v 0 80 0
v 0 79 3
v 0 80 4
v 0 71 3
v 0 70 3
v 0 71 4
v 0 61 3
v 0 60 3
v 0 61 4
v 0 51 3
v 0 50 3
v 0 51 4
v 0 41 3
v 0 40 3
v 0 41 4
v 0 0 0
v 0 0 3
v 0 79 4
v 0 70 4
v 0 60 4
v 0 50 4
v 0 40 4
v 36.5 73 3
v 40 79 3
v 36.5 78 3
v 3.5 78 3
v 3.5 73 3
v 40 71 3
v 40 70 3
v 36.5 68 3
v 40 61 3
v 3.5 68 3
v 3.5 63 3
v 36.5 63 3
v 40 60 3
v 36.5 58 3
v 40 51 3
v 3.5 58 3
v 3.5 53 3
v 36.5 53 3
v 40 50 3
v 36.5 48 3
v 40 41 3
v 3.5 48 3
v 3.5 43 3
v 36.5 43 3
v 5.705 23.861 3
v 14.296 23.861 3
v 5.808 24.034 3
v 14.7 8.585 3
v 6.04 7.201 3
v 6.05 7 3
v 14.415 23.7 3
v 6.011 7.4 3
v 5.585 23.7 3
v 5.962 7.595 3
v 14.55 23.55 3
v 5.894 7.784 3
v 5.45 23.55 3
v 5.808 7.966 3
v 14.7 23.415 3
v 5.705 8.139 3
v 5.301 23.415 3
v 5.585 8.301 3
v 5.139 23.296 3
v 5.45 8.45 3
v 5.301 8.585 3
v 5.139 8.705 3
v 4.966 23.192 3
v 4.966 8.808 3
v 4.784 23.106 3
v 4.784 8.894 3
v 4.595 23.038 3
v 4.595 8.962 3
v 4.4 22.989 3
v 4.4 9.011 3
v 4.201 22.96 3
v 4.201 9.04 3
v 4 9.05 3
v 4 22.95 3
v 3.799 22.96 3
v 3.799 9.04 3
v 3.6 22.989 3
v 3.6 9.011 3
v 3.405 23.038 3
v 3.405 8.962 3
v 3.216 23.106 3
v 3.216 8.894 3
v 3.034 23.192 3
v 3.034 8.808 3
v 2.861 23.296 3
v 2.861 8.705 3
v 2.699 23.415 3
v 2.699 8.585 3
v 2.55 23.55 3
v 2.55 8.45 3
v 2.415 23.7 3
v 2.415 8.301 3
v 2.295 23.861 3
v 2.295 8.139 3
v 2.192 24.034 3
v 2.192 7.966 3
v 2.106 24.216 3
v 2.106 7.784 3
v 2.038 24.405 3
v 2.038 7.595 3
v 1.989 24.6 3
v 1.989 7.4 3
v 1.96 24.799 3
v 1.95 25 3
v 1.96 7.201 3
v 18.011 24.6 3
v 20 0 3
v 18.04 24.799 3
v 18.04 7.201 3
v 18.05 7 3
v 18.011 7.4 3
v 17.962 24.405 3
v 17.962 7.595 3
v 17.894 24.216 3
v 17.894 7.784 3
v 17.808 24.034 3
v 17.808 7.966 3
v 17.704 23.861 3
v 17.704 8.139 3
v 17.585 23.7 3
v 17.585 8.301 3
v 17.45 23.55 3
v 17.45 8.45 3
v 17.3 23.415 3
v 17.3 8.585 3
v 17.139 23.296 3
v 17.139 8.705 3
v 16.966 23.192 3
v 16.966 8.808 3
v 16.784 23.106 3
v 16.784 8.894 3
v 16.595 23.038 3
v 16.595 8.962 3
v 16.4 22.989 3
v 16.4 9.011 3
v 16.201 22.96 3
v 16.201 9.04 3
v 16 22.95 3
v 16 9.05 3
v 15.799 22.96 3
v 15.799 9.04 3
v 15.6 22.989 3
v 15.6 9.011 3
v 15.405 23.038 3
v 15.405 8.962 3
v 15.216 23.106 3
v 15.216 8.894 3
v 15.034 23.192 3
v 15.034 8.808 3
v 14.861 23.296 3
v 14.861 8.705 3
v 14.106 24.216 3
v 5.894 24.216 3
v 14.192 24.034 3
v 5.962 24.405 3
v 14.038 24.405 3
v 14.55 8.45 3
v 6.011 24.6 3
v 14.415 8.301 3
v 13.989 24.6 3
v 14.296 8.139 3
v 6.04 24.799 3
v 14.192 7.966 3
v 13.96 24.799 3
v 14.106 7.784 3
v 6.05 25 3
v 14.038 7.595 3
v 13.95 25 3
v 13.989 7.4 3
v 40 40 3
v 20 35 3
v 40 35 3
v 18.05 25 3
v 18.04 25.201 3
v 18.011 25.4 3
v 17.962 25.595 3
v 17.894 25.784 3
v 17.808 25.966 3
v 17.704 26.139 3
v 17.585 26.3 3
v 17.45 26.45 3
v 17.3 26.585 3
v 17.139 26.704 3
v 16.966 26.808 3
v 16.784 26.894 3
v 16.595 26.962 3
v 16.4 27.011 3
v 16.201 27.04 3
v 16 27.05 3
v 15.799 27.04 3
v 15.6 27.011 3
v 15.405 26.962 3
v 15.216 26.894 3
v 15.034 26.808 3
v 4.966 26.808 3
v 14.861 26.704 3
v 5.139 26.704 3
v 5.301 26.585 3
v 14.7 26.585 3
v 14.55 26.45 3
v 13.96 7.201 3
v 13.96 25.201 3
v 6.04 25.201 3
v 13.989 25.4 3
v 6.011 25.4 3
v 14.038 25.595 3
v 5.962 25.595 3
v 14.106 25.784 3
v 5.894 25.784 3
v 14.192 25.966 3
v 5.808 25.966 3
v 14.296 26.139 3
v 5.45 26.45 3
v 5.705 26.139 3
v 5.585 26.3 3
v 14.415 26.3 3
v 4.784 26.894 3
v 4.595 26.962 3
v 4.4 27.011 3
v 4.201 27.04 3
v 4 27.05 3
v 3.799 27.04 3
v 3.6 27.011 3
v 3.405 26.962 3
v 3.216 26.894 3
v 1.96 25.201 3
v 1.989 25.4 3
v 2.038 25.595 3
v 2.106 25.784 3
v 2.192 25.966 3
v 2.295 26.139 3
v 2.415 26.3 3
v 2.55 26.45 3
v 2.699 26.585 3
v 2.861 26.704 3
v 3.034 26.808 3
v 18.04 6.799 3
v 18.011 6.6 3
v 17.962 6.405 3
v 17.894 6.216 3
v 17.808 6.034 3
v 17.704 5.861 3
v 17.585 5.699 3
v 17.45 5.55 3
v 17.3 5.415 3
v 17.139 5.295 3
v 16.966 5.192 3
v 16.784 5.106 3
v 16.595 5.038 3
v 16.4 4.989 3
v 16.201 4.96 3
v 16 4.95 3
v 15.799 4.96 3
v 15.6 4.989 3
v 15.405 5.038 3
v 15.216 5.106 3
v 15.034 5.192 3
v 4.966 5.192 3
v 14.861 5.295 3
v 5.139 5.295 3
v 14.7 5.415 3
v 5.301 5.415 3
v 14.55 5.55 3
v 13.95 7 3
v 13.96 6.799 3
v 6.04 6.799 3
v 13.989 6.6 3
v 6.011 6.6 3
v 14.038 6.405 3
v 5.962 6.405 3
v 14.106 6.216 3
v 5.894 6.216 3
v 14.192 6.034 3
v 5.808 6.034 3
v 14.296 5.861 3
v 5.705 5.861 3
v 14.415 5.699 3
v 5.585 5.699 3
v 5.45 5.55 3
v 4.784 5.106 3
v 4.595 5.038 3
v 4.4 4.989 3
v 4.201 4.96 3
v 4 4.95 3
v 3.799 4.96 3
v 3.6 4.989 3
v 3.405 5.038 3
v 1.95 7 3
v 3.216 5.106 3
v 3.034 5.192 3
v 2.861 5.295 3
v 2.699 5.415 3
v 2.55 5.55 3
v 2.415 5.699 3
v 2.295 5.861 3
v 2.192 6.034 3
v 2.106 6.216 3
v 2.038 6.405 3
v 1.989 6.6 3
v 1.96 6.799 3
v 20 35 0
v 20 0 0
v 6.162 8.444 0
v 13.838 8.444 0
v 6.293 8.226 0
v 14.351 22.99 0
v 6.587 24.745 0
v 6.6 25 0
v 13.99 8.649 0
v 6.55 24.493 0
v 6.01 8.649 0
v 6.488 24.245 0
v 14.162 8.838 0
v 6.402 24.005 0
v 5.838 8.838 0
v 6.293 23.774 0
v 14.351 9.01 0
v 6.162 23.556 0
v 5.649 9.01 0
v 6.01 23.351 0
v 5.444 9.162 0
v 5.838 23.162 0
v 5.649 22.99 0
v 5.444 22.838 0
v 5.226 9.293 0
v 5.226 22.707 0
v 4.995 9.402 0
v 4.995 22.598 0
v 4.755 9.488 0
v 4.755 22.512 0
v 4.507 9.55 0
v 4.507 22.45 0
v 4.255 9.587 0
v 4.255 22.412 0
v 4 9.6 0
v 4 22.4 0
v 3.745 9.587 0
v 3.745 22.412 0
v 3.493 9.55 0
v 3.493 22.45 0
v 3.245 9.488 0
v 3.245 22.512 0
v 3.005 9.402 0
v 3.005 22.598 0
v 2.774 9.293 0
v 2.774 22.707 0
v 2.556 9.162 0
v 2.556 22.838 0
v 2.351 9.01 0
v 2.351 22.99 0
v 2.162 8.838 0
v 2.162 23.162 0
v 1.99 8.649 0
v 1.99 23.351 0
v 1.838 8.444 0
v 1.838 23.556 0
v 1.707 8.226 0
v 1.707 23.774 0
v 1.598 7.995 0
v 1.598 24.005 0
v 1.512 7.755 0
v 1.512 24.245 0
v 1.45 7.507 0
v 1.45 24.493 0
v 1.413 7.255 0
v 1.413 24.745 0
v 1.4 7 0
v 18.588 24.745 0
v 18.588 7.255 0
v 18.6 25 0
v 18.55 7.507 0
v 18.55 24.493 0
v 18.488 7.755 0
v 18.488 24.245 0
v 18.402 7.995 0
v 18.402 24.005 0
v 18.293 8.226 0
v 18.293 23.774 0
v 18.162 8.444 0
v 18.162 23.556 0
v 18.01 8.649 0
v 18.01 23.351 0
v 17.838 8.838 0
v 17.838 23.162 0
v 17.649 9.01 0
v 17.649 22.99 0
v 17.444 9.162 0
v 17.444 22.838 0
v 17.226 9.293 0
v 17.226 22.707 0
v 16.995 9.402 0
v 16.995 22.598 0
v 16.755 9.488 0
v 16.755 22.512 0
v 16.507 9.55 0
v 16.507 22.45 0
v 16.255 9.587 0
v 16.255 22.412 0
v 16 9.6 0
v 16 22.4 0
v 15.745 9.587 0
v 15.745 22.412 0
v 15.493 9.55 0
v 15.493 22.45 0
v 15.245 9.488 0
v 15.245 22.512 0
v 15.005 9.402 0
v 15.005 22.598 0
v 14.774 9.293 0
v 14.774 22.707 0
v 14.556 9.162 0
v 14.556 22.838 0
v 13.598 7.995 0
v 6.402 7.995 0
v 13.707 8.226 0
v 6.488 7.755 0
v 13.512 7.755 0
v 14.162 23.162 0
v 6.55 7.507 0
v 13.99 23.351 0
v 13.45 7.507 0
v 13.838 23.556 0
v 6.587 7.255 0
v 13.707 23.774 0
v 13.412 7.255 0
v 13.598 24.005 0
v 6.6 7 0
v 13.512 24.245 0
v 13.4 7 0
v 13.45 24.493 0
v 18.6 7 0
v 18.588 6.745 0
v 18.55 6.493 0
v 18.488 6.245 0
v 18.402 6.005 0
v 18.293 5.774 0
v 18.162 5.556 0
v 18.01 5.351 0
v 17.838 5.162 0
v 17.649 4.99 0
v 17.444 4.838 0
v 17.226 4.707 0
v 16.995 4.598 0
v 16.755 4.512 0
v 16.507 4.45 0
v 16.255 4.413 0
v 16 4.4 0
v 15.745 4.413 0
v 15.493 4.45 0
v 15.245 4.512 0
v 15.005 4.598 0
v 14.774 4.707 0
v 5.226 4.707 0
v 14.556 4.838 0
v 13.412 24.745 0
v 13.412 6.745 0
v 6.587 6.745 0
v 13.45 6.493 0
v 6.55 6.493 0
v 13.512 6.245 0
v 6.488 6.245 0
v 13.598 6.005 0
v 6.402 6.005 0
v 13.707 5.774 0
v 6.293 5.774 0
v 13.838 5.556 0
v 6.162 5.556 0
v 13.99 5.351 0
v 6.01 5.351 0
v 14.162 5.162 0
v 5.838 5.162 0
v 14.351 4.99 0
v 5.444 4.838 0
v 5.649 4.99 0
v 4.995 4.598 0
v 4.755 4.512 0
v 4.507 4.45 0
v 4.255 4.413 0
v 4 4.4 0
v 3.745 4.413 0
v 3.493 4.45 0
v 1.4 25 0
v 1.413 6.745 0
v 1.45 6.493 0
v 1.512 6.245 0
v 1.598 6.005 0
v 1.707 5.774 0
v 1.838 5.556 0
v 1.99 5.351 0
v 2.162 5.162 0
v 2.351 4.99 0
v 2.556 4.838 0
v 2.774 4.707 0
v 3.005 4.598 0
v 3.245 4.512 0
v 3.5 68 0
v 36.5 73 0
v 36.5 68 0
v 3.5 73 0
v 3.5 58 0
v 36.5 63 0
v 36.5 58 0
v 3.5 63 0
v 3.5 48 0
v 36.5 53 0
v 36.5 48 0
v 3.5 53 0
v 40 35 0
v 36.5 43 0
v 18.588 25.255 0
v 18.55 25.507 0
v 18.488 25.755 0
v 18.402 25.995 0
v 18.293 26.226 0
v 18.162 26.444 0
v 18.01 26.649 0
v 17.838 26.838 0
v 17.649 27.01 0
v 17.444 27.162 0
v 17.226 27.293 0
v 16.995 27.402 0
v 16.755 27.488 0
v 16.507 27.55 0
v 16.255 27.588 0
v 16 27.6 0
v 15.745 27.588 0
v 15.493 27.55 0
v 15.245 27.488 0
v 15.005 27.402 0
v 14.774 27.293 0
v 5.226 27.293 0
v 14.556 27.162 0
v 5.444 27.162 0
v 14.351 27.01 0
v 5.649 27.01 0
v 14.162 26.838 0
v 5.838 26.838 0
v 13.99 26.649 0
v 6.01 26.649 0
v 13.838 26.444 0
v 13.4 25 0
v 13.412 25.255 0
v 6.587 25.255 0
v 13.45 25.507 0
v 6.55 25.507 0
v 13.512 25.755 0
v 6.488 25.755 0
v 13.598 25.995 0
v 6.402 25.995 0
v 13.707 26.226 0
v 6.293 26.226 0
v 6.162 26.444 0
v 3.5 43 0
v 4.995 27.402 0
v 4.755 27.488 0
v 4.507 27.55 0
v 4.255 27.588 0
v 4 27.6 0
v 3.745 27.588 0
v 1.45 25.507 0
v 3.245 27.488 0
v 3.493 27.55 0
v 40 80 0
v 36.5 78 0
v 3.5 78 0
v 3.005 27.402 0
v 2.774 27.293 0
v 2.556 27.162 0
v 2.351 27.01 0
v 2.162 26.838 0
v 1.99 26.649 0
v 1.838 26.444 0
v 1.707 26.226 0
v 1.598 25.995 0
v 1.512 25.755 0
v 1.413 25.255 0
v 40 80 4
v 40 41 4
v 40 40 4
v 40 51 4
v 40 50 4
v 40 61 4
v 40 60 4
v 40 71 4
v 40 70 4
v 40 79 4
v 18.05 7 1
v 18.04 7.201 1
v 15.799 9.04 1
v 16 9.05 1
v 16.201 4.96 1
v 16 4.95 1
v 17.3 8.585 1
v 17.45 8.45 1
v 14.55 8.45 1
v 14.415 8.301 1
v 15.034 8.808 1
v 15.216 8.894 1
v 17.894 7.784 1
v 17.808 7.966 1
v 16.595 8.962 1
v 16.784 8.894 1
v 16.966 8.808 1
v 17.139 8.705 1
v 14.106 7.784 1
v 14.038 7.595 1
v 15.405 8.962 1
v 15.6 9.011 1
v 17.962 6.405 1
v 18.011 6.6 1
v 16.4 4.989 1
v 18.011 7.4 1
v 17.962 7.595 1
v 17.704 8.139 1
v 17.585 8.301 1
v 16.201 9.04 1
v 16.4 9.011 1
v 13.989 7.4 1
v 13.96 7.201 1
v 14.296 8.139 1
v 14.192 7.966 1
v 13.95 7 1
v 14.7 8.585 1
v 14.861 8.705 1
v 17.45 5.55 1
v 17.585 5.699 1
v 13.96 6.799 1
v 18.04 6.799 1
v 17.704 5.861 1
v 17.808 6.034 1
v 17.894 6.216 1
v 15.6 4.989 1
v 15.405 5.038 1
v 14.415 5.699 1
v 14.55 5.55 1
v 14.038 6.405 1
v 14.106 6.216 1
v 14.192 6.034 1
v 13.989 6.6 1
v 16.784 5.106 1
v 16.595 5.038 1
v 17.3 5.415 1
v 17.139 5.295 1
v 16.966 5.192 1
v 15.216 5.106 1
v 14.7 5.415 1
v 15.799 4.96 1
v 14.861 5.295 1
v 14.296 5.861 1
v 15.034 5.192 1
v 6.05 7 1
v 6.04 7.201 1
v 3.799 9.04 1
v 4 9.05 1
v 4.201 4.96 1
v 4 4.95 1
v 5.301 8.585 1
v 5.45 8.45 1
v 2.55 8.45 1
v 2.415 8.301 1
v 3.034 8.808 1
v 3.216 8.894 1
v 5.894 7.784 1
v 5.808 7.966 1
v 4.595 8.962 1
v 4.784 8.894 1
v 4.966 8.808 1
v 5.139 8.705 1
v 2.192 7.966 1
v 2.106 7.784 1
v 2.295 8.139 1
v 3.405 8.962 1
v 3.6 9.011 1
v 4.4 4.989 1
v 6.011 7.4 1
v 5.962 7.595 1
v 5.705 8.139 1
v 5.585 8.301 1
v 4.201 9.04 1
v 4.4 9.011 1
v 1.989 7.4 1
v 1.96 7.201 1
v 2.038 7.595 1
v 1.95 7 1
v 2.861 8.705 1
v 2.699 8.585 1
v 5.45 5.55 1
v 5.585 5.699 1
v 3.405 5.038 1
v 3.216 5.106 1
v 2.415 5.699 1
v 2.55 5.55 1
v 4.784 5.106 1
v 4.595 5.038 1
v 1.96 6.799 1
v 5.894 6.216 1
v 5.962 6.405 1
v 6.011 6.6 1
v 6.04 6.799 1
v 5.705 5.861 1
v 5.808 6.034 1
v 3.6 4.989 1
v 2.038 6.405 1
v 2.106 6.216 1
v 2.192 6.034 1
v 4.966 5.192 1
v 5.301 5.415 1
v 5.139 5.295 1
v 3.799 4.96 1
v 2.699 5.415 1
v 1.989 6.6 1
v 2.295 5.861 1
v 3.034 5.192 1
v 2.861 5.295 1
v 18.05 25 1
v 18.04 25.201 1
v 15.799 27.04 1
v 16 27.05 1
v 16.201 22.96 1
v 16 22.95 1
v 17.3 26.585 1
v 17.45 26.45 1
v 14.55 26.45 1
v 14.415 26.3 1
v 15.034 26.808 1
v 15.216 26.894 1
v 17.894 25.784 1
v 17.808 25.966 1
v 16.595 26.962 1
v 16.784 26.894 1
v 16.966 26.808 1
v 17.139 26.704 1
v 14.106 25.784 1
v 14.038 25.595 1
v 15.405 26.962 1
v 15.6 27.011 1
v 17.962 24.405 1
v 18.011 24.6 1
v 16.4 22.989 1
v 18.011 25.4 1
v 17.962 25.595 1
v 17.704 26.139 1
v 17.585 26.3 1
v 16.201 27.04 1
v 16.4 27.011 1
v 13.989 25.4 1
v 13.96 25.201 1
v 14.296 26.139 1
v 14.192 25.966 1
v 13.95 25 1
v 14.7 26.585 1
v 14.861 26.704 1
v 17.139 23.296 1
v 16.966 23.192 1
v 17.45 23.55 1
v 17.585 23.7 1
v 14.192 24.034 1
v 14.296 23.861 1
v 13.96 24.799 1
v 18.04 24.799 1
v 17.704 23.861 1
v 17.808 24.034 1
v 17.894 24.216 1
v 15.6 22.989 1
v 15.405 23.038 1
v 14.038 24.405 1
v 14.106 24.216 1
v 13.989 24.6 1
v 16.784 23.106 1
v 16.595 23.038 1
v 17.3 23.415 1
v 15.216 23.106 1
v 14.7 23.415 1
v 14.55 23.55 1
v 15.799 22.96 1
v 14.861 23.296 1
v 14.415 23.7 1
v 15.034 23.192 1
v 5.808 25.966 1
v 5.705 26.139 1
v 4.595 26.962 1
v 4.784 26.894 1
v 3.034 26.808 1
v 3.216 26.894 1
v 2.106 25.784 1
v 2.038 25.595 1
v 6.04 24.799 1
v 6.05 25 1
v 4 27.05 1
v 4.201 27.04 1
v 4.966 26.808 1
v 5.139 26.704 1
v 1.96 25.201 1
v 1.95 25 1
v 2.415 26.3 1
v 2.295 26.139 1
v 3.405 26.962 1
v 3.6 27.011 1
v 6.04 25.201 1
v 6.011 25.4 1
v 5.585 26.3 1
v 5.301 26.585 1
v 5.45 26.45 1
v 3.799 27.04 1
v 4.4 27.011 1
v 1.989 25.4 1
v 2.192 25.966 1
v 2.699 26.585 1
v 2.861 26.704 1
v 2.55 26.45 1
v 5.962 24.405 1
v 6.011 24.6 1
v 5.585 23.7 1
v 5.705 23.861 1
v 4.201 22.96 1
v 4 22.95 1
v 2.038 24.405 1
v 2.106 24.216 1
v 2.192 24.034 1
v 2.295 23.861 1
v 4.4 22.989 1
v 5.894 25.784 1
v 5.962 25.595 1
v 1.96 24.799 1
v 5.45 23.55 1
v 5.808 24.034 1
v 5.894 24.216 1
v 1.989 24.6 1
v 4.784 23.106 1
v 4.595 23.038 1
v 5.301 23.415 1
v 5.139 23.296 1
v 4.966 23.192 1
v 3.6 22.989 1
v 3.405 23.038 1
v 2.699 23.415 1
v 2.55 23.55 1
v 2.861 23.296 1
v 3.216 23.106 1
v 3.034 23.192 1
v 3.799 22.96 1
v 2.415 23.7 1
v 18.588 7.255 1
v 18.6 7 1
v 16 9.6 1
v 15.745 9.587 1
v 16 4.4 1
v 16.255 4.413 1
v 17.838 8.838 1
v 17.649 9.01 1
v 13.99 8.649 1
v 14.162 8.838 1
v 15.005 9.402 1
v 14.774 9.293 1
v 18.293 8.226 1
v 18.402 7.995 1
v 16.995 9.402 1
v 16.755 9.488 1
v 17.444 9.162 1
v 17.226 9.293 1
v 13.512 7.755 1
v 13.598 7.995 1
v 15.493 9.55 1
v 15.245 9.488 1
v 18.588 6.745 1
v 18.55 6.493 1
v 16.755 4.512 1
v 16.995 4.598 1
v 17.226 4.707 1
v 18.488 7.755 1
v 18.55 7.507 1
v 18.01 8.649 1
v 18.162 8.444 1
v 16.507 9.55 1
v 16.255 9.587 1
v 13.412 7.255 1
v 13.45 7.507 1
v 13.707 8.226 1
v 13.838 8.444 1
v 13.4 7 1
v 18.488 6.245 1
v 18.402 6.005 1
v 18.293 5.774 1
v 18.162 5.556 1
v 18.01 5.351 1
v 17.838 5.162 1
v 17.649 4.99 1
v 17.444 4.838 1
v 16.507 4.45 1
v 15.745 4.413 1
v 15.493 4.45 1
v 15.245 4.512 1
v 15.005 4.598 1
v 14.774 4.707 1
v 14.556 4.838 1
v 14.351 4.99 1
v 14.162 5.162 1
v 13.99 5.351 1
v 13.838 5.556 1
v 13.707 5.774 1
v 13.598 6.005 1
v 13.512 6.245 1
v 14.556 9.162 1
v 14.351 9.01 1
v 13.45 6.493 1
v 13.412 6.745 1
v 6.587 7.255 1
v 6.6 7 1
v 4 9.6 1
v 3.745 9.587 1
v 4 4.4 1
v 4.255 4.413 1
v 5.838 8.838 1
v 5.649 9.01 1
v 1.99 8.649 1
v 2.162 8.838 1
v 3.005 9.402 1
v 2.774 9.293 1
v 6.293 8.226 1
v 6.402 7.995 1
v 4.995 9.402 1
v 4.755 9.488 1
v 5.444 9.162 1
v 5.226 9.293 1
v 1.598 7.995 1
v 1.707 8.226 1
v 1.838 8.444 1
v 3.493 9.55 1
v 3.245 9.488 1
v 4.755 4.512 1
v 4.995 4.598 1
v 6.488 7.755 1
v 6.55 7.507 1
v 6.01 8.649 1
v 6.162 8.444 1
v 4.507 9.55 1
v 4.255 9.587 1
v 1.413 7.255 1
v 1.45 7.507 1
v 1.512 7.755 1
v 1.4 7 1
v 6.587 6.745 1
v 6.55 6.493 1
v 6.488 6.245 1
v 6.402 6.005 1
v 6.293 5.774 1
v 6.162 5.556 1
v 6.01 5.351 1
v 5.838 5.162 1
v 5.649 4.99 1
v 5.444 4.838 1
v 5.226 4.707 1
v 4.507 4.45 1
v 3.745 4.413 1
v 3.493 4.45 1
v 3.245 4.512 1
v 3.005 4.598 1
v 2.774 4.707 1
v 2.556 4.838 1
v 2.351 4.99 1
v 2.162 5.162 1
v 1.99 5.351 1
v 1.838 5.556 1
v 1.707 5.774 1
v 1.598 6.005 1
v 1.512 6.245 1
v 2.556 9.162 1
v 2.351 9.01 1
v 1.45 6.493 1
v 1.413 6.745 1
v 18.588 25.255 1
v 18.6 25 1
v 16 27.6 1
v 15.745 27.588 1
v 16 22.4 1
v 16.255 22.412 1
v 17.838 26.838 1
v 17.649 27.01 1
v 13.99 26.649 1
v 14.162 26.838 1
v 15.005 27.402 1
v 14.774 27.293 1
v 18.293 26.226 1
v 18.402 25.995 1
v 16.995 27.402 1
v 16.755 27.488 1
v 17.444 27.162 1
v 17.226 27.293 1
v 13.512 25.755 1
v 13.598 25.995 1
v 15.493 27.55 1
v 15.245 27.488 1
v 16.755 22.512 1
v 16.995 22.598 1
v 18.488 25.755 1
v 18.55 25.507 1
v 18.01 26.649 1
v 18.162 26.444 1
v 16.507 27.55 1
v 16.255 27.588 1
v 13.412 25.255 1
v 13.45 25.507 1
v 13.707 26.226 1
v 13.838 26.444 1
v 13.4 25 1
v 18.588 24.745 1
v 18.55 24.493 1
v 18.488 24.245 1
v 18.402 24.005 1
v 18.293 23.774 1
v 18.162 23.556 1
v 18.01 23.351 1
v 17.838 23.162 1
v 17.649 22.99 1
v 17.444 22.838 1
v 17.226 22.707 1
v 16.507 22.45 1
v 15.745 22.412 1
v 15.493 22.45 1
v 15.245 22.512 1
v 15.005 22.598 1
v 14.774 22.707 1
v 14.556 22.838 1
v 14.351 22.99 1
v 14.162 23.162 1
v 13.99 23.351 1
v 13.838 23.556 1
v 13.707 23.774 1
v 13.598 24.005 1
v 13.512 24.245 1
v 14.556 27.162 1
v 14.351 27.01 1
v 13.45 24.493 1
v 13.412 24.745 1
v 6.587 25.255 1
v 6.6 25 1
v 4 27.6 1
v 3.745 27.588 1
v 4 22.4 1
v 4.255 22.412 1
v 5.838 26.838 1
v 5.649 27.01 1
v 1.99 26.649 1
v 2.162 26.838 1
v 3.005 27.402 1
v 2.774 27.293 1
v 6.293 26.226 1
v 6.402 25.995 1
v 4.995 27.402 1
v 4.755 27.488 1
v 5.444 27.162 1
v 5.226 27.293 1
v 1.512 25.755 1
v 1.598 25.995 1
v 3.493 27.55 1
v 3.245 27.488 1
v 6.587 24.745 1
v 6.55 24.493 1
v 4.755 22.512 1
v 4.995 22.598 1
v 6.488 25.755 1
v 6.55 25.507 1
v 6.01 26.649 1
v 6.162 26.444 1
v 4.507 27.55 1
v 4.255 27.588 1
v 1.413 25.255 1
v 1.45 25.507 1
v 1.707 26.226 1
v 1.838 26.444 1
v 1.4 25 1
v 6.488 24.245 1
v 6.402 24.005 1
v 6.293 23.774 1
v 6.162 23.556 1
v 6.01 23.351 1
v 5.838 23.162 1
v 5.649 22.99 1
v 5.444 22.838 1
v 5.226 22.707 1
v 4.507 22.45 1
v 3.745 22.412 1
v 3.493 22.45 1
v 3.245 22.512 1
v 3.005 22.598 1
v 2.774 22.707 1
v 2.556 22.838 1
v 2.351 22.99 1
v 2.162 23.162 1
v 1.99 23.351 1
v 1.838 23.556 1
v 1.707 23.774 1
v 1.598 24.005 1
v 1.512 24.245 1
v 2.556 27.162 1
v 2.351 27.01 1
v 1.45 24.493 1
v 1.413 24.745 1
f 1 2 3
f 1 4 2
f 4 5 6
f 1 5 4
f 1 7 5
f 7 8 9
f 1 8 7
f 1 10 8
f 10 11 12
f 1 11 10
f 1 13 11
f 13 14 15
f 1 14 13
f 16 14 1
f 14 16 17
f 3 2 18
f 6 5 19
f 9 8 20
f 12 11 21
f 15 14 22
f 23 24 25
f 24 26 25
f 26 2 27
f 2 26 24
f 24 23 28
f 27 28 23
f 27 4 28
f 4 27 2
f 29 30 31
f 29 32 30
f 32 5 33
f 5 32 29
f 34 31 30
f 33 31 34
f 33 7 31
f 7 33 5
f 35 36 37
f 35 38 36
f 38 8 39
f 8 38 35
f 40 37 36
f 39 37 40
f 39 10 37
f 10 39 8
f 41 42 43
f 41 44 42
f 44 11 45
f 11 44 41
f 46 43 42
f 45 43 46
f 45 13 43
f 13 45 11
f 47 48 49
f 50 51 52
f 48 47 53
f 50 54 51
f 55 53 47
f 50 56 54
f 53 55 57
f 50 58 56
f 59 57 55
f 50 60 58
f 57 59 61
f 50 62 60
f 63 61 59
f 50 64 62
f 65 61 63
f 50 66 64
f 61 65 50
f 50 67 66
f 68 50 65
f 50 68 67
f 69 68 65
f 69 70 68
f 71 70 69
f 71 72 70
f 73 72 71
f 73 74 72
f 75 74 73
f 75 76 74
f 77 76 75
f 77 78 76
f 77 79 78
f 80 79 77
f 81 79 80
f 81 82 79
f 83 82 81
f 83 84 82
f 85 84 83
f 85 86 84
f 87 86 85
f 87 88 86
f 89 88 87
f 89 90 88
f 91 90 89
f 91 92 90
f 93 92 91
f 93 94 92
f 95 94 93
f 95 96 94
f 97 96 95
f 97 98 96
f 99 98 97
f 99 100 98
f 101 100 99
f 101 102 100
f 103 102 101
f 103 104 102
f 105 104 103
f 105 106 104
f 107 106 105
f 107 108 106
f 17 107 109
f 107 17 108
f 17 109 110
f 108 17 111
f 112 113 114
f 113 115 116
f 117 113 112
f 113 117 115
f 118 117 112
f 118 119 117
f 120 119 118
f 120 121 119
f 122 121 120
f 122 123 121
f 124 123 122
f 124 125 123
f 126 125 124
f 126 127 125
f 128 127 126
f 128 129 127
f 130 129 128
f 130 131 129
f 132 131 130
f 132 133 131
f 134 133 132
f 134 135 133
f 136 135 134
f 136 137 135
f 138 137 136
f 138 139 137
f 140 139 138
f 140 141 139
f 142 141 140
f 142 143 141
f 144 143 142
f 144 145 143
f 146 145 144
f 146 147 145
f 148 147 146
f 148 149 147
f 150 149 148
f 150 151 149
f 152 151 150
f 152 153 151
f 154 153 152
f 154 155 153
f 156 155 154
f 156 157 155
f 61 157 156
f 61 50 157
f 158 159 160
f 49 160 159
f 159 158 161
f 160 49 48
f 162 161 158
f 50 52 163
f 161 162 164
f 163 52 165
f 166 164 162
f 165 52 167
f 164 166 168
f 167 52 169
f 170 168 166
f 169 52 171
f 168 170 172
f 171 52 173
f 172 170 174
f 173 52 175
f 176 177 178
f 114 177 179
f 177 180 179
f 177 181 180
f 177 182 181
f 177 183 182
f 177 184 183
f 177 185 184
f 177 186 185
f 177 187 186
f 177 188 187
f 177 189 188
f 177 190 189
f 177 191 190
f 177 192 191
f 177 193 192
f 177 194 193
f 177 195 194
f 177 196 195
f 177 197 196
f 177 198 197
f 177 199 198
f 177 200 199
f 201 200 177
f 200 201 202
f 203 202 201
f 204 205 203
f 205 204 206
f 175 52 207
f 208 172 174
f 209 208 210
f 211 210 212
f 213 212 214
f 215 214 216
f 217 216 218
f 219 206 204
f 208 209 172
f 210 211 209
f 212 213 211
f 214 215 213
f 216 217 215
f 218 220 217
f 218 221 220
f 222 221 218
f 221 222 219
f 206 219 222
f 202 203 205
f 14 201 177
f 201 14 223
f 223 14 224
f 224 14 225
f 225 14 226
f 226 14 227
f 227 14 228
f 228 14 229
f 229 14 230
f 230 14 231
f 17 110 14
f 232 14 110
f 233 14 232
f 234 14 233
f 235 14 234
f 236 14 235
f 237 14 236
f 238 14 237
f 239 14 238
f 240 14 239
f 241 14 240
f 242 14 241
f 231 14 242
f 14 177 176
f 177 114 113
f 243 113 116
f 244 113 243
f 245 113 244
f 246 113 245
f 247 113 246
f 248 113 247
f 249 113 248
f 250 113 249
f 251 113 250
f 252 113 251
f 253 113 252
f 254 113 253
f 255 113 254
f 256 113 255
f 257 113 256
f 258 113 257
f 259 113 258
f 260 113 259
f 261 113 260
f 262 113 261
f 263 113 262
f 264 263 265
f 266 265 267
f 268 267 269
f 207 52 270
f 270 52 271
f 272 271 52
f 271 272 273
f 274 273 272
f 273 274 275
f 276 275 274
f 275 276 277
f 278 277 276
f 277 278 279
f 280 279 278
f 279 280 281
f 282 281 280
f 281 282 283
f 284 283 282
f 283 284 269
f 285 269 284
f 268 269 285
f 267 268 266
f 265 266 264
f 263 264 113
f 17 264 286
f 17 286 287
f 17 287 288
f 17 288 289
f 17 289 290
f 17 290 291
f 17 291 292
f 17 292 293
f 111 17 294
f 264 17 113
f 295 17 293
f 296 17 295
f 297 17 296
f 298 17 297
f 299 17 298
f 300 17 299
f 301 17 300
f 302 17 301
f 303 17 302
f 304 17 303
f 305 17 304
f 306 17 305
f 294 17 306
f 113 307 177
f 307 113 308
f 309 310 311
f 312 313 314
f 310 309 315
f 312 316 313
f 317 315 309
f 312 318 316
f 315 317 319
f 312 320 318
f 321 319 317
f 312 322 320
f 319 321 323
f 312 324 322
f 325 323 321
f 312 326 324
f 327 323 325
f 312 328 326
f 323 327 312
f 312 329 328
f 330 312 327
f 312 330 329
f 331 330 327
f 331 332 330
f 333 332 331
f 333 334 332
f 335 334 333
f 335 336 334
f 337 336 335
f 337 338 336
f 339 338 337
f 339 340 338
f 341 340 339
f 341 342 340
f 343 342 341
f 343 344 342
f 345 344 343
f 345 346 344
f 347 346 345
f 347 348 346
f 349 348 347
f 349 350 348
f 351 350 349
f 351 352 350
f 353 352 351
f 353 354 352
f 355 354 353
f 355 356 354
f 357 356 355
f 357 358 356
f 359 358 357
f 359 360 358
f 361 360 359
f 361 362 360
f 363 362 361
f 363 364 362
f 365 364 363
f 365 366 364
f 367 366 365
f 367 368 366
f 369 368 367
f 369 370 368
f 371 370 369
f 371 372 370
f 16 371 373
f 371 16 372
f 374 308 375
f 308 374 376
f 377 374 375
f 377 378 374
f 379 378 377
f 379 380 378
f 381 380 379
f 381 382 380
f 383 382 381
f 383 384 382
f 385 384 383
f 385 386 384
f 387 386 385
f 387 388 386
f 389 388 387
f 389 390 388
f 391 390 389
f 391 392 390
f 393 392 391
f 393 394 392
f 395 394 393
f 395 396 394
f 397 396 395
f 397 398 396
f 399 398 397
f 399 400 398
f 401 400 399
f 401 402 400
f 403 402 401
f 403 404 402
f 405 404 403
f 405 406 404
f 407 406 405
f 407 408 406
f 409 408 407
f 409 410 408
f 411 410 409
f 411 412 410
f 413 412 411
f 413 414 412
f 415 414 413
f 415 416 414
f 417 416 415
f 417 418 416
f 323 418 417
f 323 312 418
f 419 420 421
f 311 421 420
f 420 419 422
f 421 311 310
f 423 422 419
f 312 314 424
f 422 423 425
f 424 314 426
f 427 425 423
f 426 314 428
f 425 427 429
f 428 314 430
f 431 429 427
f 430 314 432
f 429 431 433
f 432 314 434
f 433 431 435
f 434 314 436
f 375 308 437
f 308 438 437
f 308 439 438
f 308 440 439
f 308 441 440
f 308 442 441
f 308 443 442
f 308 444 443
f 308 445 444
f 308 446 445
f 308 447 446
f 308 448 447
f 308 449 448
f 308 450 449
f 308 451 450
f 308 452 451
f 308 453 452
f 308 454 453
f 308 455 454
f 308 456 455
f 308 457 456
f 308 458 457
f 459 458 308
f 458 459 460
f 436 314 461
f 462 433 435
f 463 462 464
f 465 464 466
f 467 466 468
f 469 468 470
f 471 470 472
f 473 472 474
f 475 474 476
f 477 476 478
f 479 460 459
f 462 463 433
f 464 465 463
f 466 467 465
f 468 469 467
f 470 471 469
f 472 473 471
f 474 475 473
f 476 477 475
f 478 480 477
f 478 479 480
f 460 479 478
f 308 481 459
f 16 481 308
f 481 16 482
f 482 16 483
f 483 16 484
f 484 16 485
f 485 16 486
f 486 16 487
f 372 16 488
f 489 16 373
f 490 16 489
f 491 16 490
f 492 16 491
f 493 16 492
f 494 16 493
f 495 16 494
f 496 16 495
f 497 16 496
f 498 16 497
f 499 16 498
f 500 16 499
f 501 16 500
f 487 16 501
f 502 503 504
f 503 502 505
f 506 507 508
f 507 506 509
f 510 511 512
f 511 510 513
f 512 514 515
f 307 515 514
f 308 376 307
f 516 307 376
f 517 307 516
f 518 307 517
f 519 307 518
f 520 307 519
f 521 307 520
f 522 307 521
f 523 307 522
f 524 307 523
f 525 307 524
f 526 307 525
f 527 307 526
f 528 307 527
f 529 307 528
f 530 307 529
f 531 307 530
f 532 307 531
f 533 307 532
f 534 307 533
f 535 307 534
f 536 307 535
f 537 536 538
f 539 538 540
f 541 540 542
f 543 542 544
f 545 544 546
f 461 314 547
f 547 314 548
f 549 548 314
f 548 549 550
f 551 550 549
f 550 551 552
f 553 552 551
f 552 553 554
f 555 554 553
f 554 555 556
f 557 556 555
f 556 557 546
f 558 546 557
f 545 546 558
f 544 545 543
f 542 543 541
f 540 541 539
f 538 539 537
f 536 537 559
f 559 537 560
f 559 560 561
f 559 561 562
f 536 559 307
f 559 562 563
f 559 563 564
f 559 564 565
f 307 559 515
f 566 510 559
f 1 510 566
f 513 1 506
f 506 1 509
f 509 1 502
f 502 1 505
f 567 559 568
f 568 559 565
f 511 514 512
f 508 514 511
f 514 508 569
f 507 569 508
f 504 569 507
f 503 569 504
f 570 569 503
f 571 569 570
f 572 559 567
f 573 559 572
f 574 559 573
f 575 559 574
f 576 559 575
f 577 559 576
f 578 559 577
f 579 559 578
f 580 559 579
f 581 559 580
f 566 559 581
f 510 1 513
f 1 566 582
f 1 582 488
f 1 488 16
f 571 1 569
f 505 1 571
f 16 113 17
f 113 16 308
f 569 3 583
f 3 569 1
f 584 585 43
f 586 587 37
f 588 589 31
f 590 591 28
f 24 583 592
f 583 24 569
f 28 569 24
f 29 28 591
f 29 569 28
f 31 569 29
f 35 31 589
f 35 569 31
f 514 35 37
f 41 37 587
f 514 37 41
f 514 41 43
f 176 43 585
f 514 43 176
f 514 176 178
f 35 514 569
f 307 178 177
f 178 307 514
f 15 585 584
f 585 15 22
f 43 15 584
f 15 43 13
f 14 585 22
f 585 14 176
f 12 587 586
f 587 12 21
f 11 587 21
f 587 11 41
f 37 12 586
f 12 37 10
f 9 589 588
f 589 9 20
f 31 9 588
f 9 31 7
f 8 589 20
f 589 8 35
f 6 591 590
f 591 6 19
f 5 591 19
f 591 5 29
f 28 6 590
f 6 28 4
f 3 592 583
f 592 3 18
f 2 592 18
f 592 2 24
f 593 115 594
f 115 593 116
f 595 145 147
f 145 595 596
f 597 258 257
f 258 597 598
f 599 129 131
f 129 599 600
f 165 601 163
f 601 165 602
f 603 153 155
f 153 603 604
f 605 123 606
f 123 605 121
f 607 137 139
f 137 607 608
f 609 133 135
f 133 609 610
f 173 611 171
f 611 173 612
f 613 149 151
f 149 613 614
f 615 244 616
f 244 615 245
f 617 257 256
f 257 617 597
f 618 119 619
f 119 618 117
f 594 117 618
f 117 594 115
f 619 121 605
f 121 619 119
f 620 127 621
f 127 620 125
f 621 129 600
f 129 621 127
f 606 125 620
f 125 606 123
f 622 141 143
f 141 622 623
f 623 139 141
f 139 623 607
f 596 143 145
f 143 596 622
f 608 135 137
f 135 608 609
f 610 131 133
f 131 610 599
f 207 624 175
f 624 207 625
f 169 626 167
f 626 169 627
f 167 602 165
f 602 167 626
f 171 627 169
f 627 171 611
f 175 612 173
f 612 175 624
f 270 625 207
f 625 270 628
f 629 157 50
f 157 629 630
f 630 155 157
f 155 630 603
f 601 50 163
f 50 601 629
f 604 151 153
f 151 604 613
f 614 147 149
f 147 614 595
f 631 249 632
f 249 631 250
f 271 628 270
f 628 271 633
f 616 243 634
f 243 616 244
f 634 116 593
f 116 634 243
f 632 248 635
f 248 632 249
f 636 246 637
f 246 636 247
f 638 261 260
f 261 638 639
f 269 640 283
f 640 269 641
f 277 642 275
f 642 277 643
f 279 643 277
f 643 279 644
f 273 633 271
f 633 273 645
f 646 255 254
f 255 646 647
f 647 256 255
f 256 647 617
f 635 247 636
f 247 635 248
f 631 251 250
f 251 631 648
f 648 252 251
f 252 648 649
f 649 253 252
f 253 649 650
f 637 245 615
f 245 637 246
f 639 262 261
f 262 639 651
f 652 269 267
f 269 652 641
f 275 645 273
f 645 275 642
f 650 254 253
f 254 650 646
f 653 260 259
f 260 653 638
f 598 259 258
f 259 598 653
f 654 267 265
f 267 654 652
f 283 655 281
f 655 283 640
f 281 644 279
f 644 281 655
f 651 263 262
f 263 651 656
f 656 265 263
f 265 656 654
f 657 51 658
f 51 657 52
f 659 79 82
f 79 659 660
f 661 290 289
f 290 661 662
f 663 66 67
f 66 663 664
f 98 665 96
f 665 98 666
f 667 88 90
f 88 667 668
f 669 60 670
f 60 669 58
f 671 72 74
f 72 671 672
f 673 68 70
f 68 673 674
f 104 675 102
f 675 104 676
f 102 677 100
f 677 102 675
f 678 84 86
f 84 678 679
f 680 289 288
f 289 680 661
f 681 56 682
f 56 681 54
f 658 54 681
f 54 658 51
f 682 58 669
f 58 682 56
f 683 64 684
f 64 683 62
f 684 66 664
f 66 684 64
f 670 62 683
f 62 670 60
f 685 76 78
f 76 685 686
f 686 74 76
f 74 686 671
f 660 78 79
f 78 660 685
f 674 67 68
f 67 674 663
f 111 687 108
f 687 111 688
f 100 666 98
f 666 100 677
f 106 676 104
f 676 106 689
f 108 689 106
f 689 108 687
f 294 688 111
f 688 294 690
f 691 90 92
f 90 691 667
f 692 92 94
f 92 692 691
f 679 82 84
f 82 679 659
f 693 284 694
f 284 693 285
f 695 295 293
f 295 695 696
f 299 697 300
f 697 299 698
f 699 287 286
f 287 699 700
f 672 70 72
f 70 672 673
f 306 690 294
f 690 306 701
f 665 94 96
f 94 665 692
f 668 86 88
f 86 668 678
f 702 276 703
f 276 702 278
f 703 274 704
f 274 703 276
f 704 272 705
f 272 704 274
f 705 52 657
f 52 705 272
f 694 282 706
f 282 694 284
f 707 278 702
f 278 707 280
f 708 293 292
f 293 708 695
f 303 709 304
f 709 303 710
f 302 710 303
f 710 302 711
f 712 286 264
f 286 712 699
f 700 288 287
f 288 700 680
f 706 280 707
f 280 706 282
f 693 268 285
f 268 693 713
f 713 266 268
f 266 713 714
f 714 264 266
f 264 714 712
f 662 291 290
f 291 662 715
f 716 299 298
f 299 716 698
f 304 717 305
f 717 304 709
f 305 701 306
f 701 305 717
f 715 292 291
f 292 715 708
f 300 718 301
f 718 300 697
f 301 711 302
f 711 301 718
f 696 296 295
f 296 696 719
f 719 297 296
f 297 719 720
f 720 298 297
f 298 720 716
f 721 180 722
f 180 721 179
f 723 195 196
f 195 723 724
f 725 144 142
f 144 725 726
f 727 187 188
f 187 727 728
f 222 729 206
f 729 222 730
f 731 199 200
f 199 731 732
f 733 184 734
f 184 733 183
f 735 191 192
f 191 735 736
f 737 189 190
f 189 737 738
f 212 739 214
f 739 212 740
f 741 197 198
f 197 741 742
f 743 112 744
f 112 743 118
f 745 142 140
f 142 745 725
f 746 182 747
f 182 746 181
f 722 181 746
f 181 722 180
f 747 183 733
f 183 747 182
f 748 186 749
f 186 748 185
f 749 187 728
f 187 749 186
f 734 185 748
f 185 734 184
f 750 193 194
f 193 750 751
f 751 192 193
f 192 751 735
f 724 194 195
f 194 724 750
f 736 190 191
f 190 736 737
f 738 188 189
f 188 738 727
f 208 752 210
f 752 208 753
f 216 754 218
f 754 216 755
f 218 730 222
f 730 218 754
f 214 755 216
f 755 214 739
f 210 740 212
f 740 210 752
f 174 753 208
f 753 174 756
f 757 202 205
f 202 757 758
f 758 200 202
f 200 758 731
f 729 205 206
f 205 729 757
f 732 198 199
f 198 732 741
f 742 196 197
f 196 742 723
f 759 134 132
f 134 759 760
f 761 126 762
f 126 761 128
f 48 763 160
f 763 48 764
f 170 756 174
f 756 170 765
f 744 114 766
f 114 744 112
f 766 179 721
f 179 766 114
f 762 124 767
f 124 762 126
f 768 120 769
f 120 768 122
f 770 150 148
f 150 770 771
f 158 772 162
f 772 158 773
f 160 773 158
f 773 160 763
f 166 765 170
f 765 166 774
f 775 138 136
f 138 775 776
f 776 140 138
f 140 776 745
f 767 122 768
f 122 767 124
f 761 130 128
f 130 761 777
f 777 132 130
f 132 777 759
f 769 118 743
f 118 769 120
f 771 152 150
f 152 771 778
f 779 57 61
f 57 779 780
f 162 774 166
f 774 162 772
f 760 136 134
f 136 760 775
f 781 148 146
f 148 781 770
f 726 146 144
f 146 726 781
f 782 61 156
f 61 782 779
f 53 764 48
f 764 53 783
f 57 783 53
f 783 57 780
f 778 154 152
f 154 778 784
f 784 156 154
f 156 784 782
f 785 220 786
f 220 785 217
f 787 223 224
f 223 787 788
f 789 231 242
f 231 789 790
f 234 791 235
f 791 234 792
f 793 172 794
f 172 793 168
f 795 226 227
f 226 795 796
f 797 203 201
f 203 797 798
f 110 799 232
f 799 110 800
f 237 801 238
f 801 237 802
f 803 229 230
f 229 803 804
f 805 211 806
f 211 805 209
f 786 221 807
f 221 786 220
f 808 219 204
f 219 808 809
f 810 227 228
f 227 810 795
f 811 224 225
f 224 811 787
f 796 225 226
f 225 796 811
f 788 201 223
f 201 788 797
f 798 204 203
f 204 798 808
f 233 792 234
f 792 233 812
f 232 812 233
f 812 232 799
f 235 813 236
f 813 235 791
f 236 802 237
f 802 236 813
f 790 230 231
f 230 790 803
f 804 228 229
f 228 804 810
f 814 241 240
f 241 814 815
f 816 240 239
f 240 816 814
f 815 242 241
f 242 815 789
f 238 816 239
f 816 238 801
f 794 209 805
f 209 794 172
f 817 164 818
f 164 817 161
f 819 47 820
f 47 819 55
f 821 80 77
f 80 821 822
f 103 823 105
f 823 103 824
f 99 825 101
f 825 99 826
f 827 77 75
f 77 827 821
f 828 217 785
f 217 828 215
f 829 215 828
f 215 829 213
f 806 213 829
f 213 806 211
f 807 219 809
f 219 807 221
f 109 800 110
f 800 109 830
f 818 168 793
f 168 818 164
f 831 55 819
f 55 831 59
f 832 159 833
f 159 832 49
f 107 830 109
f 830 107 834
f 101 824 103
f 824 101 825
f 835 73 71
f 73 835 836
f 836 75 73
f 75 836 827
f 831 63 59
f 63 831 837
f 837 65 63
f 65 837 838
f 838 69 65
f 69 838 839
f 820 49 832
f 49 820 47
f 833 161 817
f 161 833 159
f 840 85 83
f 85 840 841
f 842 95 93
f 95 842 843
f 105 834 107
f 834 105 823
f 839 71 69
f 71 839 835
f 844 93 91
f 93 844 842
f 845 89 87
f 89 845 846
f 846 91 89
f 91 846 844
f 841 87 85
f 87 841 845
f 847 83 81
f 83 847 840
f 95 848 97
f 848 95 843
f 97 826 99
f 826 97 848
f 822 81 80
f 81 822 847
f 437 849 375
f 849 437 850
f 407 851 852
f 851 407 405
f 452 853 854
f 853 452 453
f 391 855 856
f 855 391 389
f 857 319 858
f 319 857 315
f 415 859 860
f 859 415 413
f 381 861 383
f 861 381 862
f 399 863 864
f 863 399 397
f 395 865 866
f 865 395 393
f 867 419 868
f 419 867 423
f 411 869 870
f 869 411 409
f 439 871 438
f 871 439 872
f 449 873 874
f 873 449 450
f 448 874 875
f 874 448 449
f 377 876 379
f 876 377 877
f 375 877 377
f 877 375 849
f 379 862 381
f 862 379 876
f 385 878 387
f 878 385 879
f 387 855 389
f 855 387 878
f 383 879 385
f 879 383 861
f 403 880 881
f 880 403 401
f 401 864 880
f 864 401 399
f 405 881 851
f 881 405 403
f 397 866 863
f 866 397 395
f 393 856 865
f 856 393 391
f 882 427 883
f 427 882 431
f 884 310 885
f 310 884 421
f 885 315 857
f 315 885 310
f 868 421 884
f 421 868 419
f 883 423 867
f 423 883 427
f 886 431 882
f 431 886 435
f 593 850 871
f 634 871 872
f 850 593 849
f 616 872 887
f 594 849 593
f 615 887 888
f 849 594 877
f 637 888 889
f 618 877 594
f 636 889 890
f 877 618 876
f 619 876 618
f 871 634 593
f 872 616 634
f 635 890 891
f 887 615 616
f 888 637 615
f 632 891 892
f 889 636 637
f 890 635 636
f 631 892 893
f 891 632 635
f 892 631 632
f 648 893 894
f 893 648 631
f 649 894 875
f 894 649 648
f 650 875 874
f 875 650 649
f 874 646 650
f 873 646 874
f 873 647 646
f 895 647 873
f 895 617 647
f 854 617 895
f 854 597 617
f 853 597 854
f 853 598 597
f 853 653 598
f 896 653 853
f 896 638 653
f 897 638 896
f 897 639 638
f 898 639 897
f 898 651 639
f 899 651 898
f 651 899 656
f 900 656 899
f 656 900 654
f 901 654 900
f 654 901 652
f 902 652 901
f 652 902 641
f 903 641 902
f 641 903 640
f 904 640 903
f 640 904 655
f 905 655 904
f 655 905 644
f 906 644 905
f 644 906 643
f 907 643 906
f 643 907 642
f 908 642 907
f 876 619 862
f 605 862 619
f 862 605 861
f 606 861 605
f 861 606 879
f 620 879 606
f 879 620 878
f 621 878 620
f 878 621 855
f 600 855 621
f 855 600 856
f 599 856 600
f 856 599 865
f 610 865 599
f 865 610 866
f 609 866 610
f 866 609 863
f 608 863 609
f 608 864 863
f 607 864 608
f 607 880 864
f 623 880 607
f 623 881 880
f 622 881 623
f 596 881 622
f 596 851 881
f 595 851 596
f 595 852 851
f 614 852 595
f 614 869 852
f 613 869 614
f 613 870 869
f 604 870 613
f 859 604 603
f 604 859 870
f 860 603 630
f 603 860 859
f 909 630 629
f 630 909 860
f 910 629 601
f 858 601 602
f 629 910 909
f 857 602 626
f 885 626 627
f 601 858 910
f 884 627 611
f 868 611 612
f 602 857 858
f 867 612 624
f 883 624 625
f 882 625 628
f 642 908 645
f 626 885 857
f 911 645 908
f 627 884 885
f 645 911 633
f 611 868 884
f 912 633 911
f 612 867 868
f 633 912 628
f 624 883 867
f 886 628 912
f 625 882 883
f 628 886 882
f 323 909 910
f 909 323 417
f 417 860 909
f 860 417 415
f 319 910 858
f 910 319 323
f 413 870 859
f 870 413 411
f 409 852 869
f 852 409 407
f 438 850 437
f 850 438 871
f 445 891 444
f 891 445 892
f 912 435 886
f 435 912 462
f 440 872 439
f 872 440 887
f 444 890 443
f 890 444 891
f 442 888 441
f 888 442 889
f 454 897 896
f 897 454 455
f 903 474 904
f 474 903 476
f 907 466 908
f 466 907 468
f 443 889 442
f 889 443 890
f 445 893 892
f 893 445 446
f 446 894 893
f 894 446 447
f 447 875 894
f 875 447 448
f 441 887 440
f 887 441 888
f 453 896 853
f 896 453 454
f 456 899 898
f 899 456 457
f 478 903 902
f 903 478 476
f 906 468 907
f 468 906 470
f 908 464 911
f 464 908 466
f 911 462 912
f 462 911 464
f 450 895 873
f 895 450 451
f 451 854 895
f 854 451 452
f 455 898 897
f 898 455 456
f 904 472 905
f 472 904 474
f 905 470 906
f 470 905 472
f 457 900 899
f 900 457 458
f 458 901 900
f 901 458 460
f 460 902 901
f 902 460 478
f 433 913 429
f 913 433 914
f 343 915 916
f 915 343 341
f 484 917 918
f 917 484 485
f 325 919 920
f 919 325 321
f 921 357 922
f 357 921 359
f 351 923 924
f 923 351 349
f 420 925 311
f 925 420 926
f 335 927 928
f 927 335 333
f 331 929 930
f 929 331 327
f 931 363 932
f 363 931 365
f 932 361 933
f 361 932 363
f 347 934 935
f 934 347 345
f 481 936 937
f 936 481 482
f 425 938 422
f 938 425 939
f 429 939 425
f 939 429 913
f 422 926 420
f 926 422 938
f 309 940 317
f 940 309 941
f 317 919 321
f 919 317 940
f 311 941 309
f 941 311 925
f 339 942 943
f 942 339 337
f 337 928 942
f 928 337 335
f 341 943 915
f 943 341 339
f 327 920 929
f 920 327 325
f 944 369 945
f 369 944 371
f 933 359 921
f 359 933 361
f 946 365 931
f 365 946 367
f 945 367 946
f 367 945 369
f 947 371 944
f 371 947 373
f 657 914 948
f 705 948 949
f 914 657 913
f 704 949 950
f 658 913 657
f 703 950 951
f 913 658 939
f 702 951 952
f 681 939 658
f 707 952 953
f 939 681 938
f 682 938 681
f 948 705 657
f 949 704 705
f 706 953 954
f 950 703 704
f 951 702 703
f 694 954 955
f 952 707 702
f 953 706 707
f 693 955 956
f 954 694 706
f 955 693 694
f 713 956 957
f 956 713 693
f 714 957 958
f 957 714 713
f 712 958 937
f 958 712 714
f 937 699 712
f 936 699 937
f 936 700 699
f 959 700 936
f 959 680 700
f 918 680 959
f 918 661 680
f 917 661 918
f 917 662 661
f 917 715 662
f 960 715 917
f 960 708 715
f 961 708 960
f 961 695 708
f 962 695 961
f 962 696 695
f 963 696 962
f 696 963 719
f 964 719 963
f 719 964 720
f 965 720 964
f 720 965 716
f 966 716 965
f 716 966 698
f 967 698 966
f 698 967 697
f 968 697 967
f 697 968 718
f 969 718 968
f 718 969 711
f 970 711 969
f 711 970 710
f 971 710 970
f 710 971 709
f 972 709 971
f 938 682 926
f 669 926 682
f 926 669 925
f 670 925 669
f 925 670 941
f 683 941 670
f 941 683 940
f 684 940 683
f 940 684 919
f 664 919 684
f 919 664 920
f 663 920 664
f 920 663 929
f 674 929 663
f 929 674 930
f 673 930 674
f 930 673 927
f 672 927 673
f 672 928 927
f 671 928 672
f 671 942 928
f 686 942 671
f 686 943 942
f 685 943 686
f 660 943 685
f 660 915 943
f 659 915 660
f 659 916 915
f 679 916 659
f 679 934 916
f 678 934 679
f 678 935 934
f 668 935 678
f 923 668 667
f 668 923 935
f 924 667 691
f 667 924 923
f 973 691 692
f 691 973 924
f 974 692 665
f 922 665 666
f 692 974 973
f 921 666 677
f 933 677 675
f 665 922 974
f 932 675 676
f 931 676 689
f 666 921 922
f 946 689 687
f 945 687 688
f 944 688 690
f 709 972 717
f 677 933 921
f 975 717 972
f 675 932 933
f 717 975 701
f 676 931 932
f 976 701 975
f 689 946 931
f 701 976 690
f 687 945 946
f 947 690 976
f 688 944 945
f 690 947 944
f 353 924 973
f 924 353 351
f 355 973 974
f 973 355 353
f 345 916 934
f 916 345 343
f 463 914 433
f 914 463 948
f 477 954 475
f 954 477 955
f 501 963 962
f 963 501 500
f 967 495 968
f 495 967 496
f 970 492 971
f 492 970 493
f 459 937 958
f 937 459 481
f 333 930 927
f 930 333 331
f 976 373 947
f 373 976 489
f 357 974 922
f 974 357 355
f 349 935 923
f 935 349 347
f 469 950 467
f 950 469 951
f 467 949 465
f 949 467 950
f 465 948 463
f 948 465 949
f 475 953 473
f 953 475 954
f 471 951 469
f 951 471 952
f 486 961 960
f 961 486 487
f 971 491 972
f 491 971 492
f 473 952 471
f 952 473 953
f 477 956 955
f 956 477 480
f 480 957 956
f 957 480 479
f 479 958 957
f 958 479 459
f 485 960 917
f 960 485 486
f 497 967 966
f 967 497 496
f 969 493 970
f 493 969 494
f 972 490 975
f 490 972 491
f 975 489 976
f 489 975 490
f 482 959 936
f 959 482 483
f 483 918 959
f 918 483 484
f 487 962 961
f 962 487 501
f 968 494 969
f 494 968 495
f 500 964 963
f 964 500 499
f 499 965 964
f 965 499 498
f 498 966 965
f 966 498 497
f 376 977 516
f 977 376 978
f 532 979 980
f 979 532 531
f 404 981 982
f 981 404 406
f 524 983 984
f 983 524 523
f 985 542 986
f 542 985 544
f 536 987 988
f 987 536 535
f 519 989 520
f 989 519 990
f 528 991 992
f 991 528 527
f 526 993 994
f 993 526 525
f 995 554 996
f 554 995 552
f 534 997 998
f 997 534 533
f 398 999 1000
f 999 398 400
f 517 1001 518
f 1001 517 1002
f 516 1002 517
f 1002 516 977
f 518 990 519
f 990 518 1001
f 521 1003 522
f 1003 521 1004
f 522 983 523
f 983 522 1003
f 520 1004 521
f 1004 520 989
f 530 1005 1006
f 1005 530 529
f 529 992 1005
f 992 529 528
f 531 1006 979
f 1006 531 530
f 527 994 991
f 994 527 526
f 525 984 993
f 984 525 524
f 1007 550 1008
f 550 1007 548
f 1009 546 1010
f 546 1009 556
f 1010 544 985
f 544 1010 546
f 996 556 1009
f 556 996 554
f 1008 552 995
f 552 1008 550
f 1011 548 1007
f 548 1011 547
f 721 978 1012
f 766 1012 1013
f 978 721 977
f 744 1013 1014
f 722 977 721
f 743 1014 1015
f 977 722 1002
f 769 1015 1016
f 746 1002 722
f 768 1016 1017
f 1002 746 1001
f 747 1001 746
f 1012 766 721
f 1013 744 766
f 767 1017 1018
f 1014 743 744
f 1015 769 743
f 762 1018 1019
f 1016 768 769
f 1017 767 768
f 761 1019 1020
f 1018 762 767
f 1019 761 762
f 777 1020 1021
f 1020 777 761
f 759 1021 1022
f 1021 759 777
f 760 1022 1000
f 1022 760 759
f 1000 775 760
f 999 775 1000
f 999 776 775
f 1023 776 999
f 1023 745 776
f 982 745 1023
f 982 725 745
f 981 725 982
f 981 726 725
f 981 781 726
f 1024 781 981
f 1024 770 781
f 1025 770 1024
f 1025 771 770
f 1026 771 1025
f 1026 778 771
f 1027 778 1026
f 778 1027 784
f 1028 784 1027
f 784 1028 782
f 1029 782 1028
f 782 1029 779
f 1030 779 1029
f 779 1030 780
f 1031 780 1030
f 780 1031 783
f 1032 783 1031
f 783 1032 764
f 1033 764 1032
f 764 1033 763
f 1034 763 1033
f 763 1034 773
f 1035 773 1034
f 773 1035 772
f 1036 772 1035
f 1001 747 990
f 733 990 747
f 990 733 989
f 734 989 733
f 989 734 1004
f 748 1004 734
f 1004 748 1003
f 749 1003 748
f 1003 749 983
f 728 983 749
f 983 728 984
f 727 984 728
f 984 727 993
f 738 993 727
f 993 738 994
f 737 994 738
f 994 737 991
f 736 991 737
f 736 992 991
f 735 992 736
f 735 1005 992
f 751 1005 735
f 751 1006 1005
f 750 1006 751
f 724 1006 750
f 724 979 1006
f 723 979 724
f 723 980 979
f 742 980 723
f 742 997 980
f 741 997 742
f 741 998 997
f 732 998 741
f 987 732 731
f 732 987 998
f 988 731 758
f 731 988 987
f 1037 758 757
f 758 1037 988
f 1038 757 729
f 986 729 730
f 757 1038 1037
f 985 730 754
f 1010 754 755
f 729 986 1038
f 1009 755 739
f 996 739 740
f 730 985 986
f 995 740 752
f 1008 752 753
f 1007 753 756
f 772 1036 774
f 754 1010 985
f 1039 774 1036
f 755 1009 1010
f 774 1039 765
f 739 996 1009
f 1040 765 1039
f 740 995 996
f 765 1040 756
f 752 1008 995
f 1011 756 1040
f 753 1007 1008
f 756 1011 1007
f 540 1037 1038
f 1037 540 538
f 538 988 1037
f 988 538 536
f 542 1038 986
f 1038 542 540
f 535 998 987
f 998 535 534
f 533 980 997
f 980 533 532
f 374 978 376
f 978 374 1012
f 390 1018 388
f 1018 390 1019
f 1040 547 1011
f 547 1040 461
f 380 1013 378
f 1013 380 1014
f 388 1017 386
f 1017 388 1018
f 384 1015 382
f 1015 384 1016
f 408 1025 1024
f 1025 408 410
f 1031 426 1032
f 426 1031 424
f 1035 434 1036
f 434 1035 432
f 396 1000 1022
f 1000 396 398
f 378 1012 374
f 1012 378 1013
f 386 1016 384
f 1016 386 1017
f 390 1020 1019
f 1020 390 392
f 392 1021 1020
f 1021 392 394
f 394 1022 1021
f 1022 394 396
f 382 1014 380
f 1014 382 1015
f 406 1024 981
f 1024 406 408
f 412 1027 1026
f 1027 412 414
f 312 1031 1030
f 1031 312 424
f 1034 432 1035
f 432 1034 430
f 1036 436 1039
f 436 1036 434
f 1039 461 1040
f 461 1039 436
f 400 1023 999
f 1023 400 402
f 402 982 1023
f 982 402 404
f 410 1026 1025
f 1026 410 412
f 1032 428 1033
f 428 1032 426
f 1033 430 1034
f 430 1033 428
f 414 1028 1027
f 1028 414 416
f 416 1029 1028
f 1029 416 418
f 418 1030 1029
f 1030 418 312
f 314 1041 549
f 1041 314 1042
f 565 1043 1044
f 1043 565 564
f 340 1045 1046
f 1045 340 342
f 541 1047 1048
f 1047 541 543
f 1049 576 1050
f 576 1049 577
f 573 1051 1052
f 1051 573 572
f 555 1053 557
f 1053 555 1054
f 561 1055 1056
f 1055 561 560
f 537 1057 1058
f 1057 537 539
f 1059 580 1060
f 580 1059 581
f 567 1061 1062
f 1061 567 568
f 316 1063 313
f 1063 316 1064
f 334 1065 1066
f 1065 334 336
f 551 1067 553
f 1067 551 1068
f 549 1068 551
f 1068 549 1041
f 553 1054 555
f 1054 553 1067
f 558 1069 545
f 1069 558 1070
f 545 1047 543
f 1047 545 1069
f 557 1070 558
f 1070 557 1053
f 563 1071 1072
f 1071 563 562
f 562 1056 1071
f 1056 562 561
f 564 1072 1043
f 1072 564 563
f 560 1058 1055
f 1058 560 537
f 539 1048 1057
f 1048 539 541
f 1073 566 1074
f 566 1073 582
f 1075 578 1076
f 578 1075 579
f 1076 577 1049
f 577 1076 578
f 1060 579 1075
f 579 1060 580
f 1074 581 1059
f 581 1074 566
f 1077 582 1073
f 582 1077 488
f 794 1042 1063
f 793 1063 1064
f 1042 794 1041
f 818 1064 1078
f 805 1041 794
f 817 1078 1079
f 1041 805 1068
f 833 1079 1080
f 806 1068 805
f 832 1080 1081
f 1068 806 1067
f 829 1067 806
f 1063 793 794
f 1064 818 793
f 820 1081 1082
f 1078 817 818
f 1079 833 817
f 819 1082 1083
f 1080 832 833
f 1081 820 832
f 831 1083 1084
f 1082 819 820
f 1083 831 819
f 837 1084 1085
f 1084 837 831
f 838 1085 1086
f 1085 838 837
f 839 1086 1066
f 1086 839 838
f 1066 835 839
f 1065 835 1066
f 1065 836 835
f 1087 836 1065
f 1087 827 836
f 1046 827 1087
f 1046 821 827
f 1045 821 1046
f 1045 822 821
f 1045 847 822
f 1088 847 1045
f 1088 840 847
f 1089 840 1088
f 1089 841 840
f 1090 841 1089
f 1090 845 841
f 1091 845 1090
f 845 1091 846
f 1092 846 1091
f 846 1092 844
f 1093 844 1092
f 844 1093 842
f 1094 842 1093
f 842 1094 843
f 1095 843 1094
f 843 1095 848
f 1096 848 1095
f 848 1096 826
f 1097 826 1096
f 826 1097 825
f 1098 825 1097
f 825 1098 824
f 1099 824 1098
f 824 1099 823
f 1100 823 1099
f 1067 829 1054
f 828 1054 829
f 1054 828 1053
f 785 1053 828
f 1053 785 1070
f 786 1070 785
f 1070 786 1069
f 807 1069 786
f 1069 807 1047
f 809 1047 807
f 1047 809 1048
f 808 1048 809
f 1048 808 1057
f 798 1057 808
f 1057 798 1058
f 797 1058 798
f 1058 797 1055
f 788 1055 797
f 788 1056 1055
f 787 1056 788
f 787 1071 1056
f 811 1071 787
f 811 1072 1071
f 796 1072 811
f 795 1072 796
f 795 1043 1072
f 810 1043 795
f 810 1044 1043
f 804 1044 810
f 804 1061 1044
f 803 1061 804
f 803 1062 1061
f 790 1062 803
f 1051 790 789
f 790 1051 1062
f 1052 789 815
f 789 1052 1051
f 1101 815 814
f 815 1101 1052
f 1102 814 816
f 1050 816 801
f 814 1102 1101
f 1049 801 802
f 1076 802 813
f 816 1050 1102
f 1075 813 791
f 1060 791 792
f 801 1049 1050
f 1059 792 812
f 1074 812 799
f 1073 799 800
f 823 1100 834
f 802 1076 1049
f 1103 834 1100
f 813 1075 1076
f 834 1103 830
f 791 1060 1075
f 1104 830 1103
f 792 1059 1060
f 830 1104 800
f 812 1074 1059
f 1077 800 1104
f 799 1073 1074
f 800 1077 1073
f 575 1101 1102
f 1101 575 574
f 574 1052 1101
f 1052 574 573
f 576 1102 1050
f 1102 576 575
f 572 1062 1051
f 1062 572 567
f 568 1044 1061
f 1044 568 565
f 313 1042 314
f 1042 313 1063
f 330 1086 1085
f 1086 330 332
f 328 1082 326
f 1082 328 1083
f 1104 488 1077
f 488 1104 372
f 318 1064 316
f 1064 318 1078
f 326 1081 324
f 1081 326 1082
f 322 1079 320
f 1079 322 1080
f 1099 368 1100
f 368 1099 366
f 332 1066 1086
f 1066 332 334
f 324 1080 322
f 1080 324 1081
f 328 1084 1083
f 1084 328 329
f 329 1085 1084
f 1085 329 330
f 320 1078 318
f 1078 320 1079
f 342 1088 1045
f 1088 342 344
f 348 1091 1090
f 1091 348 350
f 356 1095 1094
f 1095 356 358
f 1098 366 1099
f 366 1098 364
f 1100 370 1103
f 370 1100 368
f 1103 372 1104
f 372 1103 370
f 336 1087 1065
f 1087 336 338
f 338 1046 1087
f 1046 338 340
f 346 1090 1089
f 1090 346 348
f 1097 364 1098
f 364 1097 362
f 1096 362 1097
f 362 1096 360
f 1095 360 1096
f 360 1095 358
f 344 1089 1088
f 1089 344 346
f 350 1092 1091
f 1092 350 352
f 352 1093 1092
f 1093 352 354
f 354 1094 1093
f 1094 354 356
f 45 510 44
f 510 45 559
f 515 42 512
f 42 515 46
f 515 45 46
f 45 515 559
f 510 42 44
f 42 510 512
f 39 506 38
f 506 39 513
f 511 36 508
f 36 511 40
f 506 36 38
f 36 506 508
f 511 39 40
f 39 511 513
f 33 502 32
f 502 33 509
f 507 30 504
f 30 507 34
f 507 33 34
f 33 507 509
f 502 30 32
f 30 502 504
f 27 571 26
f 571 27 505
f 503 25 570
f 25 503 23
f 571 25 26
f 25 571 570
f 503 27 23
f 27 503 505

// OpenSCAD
rvt_rad = 2;
lk_w = 20;
lk_l = 80;
lk_b = 3;
lks_l=0;
rvt_dist = 3*sqrt(2);
rdist = 6;

ref1 = 7;

difference(){
union(){
translate([0,0,0]) cube([lk_w,lk_l,lk_b]);
translate([lk_w,25+10,0]) cube([lk_w,lk_l-25-10,lk_b]);

translate([0,40,3]) cube([2*lk_w,1,1]);
translate([0,50,3]) cube([2*lk_w,1,1]);
translate([0,60,3]) cube([2*lk_w,1,1]);
translate([0,70,3]) cube([2*lk_w,1,1]);
translate([0,79,3]) cube([2*lk_w,1,1]);


    }
translate([(lk_w/2)+rdist,ref1,-0]) cylinder(r=rvt_rad+0.05,h=20,$fn=64);
translate([(lk_w/2)-rdist,ref1,-0]) cylinder(r=rvt_rad+0.05,h=20,$fn=64);
translate([(lk_w/2)+rdist,ref1+18,-0]) cylinder(r=rvt_rad+0.05,h=20,$fn=64);
translate([(lk_w/2)-rdist,ref1+18,-0]) cylinder(r=rvt_rad+0.05,h=20,$fn=64);

translate([(lk_w/2)+rdist,ref1,-2]) cylinder(r=rvt_rad+0.6,h=3,$fn=64);
translate([(lk_w/2)-rdist,ref1,-2]) cylinder(r=rvt_rad+0.6,h=3,$fn=64);
translate([(lk_w/2)+rdist,ref1+18,-2]) cylinder(r=rvt_rad+0.6,h=3,$fn=64);
translate([(lk_w/2)-rdist,ref1+18,-2]) cylinder(r=rvt_rad+0.6,h=3,$fn=64);
    

translate([3.5,43,0]) cube([2*lk_w-7,5,5]);
translate([3.5,53,0]) cube([2*lk_w-7,5,5]);
translate([3.5,63,0]) cube([2*lk_w-7,5,5]);
translate([3.5,73,0]) cube([2*lk_w-7,5,5]);


}

//rotate([0,90,0])
